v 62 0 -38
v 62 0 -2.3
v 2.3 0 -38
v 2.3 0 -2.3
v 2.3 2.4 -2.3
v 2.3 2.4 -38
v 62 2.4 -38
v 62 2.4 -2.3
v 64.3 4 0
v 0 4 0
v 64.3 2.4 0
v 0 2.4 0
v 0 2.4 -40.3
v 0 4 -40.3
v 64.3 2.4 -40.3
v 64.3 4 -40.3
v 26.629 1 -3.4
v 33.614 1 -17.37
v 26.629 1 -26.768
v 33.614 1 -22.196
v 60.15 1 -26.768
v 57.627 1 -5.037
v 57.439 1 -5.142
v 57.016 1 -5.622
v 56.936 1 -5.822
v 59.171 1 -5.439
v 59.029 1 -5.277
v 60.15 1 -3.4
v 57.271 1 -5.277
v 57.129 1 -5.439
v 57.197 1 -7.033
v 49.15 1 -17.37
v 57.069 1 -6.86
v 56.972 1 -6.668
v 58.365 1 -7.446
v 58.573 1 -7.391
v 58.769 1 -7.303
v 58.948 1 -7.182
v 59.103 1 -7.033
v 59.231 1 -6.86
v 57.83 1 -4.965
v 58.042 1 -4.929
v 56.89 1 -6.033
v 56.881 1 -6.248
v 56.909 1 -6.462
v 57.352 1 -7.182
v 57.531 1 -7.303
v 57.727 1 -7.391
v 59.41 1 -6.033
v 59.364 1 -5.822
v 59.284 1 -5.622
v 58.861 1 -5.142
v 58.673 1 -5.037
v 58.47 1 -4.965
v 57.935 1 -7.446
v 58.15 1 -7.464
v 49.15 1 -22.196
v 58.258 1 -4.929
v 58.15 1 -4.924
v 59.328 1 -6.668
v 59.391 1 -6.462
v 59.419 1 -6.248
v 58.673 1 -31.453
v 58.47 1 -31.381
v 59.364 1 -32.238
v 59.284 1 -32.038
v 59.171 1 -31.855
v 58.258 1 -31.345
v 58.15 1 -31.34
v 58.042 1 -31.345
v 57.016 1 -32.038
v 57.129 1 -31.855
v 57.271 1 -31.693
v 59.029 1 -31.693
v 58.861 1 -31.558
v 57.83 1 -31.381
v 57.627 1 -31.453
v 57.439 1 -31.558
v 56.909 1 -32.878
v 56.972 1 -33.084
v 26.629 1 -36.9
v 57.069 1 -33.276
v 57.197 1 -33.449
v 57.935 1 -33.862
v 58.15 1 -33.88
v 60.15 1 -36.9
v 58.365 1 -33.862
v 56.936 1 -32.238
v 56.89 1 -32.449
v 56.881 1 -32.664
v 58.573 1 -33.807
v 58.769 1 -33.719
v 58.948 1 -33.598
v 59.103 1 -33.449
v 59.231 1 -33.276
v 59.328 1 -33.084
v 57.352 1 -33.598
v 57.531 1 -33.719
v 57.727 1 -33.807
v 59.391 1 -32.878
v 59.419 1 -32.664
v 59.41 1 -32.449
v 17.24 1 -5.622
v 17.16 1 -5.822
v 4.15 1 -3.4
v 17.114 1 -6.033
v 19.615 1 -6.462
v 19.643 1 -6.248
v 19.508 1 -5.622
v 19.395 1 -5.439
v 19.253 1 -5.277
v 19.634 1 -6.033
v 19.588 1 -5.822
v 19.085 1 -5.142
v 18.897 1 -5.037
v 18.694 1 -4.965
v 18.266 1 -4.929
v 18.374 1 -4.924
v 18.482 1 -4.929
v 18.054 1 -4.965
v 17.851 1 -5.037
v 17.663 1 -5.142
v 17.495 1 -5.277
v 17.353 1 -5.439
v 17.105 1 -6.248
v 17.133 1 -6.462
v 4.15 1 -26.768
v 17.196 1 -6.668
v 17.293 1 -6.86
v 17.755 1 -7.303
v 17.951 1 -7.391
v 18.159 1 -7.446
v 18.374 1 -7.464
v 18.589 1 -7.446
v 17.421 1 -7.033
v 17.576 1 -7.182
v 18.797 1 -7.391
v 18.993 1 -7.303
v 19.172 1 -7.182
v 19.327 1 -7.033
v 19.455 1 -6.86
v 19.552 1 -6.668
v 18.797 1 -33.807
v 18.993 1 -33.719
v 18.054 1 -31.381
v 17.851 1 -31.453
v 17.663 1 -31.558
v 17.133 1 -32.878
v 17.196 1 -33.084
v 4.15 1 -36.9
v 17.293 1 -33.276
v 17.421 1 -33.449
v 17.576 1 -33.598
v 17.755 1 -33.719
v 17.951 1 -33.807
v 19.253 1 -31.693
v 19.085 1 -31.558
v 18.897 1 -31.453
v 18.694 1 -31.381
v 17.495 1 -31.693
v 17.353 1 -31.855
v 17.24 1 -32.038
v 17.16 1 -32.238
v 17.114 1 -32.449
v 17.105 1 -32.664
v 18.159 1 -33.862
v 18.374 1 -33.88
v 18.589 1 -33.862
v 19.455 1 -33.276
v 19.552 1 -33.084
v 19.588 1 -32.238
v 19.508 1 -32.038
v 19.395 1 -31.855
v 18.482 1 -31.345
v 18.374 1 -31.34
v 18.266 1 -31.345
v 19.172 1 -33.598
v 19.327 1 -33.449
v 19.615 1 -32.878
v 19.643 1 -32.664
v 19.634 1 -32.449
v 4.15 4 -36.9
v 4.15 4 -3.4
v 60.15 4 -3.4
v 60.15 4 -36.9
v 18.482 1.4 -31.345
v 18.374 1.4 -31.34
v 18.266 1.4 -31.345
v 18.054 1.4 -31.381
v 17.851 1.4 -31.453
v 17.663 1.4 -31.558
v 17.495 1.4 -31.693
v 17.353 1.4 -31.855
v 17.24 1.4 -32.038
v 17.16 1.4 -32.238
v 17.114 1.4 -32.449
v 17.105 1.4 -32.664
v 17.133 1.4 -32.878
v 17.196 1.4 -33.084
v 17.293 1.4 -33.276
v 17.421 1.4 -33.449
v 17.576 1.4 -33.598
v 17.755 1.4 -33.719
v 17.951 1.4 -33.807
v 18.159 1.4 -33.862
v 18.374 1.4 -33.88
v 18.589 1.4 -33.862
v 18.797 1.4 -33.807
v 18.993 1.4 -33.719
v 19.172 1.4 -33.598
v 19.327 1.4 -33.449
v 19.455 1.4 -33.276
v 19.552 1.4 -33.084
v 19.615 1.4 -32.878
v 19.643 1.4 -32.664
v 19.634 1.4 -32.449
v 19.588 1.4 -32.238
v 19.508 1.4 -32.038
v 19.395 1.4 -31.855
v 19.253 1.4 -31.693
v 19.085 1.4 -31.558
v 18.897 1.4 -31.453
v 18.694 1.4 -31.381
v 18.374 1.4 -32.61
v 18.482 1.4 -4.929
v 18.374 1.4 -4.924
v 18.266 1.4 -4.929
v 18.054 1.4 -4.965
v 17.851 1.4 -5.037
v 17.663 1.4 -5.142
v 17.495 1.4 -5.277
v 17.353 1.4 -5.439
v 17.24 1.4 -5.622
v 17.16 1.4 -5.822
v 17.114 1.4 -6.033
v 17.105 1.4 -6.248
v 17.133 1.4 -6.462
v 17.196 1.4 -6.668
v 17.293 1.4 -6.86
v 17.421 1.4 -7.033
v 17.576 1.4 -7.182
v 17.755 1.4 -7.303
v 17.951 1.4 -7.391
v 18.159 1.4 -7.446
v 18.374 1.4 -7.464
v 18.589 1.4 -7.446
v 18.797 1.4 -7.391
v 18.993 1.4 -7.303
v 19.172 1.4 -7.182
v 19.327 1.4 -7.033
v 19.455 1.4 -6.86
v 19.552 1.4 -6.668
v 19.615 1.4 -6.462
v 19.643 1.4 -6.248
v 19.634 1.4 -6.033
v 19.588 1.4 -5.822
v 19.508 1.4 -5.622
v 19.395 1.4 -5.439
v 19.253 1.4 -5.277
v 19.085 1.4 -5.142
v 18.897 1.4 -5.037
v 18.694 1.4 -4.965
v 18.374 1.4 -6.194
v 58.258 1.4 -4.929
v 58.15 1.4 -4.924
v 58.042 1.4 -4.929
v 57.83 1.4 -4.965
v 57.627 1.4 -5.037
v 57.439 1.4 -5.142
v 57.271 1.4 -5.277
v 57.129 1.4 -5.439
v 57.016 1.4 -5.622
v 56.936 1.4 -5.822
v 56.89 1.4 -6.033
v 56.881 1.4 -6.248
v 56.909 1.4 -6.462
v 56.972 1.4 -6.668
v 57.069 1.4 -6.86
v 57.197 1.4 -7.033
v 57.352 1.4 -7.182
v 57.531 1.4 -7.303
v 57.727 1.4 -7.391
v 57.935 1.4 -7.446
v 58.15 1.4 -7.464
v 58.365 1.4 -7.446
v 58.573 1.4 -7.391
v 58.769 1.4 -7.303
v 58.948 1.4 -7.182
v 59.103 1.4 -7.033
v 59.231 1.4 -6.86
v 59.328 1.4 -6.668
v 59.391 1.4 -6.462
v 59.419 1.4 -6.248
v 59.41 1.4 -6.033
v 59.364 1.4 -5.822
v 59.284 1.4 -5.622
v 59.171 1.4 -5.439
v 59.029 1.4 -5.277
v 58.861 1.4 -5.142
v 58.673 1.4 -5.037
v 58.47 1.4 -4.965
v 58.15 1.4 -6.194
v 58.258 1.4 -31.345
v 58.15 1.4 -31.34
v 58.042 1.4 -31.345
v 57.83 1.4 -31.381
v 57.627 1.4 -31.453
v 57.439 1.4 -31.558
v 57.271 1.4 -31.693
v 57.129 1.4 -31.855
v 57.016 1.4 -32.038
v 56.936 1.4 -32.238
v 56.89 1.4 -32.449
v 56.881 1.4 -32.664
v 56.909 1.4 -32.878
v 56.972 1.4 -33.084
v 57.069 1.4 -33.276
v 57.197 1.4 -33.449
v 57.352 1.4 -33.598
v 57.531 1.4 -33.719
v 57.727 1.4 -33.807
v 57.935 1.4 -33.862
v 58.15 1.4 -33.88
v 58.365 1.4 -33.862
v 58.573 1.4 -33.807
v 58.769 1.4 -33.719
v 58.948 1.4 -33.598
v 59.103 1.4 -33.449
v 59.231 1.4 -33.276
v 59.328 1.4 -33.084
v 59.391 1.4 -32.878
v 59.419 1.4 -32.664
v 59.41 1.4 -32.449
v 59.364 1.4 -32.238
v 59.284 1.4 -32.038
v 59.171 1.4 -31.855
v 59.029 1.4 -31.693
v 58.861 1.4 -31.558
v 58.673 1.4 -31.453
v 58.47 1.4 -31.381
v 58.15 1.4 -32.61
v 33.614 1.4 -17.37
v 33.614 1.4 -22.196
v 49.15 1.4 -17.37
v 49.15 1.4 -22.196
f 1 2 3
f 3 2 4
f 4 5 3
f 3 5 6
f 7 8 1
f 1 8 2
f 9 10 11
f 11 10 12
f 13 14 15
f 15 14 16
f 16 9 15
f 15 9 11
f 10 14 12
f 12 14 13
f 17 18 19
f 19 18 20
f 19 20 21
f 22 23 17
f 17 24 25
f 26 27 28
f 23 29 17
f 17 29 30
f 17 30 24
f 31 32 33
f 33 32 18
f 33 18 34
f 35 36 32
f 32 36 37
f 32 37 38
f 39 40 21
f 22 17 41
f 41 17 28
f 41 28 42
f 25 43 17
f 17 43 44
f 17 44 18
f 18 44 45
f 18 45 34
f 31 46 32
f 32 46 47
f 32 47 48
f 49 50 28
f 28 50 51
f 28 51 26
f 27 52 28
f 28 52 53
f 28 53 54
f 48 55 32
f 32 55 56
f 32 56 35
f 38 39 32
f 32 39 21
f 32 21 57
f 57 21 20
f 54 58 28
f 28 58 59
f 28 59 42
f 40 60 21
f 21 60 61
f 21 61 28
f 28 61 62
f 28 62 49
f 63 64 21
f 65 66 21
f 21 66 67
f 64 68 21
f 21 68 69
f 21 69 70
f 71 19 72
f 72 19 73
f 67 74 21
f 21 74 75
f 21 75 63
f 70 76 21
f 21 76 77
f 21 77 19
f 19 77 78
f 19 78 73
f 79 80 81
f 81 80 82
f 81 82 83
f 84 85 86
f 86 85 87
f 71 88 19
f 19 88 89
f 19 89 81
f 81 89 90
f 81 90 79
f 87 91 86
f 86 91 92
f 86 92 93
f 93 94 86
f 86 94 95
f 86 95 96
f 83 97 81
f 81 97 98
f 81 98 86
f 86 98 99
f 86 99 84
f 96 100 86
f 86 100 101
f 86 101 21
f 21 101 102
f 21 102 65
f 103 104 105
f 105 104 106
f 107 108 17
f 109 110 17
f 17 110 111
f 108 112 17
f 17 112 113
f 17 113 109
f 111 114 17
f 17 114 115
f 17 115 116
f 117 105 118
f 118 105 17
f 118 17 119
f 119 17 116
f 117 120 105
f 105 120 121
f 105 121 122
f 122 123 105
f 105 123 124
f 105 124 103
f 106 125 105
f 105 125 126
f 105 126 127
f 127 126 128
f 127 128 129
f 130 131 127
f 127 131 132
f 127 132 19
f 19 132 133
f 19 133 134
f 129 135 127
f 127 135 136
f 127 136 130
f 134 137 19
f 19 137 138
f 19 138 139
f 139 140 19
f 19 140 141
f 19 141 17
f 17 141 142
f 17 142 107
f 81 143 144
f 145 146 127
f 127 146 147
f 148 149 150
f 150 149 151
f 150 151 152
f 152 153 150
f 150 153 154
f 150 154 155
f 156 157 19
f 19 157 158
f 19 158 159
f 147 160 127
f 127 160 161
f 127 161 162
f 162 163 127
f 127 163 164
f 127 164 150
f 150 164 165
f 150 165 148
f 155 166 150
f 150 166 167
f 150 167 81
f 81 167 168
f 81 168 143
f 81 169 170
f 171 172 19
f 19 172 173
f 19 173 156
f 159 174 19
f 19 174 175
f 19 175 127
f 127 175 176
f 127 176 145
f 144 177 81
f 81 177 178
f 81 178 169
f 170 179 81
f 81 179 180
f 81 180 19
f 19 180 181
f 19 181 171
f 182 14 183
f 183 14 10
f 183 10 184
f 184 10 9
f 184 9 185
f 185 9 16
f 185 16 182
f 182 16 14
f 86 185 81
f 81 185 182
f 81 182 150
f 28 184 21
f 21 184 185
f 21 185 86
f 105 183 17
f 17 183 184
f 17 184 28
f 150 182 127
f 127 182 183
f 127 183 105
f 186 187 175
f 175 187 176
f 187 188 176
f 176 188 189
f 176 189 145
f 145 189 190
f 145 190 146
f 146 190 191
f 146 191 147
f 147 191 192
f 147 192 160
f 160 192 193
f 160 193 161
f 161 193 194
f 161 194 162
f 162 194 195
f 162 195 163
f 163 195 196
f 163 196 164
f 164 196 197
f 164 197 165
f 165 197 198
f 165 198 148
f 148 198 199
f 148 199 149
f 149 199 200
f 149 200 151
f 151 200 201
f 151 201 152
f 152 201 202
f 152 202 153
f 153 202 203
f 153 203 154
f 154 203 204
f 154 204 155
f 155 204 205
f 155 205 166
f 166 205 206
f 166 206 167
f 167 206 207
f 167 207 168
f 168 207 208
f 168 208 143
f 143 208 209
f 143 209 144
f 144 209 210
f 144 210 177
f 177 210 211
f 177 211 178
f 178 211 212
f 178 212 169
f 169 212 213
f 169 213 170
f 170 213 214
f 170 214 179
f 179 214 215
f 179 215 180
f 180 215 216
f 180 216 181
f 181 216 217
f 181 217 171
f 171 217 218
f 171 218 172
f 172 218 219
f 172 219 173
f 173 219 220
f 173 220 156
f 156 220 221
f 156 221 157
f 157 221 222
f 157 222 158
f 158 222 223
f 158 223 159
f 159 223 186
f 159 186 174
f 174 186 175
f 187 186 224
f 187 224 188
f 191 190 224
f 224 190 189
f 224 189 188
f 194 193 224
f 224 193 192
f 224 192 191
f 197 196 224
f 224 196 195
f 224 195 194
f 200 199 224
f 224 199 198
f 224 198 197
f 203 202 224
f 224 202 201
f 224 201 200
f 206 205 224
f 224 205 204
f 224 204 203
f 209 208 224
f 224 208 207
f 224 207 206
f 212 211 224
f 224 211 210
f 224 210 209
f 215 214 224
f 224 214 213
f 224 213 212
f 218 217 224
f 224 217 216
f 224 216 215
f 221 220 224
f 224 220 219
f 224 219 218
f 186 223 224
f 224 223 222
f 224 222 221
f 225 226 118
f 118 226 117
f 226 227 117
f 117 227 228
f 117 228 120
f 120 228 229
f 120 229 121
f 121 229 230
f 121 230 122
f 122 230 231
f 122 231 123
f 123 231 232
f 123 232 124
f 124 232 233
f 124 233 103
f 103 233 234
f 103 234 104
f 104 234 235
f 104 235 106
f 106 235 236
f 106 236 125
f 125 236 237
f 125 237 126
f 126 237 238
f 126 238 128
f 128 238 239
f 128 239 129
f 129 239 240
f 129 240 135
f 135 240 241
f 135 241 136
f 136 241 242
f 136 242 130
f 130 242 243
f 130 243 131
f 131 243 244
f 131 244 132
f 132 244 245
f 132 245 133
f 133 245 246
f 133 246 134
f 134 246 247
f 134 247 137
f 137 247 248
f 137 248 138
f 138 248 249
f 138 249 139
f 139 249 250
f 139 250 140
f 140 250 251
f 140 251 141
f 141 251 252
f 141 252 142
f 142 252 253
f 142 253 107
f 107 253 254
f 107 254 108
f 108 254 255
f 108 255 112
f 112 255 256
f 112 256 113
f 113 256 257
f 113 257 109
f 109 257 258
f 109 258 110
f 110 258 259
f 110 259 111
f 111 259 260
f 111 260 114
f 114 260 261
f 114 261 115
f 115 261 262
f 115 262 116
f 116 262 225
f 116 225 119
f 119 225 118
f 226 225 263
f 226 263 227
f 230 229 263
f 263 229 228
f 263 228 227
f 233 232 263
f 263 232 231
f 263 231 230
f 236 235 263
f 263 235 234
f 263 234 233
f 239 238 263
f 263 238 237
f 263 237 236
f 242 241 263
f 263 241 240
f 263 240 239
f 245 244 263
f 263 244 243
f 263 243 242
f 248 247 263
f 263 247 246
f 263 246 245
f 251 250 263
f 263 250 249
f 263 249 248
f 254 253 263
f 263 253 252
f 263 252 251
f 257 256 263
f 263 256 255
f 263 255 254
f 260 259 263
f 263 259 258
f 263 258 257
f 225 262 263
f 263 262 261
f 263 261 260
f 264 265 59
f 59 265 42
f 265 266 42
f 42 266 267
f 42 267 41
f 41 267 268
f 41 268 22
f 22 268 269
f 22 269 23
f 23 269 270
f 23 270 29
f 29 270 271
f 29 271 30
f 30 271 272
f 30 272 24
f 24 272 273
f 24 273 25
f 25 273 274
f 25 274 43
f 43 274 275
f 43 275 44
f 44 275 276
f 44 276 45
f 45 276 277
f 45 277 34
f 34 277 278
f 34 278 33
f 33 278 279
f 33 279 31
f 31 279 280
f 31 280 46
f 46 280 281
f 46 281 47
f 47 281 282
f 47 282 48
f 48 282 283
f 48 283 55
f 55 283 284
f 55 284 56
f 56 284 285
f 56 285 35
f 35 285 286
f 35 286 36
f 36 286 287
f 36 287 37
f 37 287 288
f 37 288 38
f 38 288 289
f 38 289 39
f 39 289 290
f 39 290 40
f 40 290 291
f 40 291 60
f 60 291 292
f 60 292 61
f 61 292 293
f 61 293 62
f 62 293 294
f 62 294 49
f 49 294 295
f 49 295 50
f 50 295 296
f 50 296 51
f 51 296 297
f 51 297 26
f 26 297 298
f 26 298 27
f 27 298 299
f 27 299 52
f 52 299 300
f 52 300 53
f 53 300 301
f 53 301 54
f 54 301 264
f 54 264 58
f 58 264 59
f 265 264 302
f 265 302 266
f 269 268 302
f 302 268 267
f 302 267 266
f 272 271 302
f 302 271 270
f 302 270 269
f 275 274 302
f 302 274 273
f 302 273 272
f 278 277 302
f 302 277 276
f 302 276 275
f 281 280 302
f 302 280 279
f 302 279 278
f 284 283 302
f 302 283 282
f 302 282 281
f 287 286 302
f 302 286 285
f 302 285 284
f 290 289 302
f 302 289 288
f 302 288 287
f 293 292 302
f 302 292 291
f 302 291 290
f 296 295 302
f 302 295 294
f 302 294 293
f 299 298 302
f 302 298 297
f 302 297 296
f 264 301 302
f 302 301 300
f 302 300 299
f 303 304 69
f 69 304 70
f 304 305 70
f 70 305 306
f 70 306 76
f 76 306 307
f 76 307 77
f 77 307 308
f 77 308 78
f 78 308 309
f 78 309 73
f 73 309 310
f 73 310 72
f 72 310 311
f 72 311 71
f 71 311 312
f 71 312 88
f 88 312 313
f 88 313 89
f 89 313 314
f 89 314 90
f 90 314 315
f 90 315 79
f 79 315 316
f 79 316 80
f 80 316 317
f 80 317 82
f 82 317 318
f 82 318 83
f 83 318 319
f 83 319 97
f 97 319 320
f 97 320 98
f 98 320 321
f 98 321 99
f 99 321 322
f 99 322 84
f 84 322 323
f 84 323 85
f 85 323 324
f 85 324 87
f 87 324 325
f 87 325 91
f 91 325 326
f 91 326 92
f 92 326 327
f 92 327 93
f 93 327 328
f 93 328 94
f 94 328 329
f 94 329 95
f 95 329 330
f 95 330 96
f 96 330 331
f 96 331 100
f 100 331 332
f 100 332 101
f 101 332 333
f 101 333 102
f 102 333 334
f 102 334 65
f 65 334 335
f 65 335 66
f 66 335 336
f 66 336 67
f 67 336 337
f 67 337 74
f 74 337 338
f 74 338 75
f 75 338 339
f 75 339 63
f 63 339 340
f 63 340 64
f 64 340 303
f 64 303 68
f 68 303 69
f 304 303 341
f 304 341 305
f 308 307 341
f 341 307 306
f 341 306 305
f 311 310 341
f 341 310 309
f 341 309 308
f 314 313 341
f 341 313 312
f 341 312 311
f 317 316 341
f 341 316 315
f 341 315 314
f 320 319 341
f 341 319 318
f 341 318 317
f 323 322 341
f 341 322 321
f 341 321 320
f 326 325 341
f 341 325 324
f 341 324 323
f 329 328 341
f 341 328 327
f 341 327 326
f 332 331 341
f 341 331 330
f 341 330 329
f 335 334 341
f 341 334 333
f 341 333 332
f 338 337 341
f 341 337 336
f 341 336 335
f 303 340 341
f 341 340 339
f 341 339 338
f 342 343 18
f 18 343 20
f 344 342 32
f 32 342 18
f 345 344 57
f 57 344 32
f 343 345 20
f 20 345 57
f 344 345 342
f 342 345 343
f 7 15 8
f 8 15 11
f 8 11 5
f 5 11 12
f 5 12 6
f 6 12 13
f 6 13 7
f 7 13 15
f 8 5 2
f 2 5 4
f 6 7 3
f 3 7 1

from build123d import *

# Parameters (mm, degrees)
SKETCH1_W              = 64.3
SKETCH1_H              = 40.3
BOSS_EXTRUDE1_DEPTH    = 4
SKETCH2_W              = 56
SKETCH2_H              = 33.5
MAIN_WELL_CUTOUT_DEPTH = 3
SKETCH8_R              = 1.27
SKETCH8_W              = 15.536
SKETCH8_H              = 4.826
ADHESIVE_CONTACT_DEPTH = 0.4
SKETCH5_W              = 59.7
SKETCH5_H              = 2.4
CUT_EXTRUDE2_DEPTH     = 2.3
SKETCH5_3_W            = 2.3
SKETCH5_3_H            = 2.4
CUT_EXTRUDE3_DEPTH     = 76.99065732


with BuildPart() as part:
    # Sketch1 → Boss-Extrude1 (new body)
    with BuildSketch(Plane(origin=(0, 0, 0), x_dir=(1, 0, 0), z_dir=(0, 1, 0))):
        with Locations((32.15, 20.15)):
            Rectangle(SKETCH1_W, SKETCH1_H)
    extrude(amount=BOSS_EXTRUDE1_DEPTH)

    # Sketch2 → main well cutout (cut)
    with BuildSketch(Plane(origin=(0, 4, 0), x_dir=(1, 0, 0), z_dir=(0, 1, 0))):
        with Locations((32.15, 20.15)):
            Rectangle(SKETCH2_W, SKETCH2_H)
    extrude(amount=-MAIN_WELL_CUTOUT_DEPTH, mode=Mode.SUBTRACT)

    # Sketch8 → Adhesive contact (add)
    with BuildSketch(Plane(origin=(0, 1, 0), x_dir=(1, 0, 0), z_dir=(0, 1, 0))):
        with Locations((18.374, 32.61)):
            Circle(SKETCH8_R)
        with Locations((18.374, 6.194)):
            Circle(SKETCH8_R)
        with Locations((58.15, 6.194)):
            Circle(SKETCH8_R)
        with Locations((58.15, 32.61)):
            Circle(SKETCH8_R)
        with Locations((41.382, 19.783)):
            Rectangle(SKETCH8_W, SKETCH8_H)
    extrude(amount=ADHESIVE_CONTACT_DEPTH)

    # Sketch5 → Cut-Extrude2 (cut)
    with BuildSketch(Plane.XY):
        with Locations((32.15, 1.2)):
            Rectangle(SKETCH5_W, SKETCH5_H)
    cut_extrude2 = extrude(amount=-CUT_EXTRUDE2_DEPTH, mode=Mode.SUBTRACT)

    # Sketch5<3> → Cut-Extrude3 (cut, through all)
    with BuildSketch(Plane.XY):
        with Locations((1.15, 1.2)):
            Rectangle(SKETCH5_3_W, SKETCH5_3_H)
        with Locations((63.15, 1.2)):
            Rectangle(SKETCH5_3_W, SKETCH5_3_H)
    extrude(amount=-CUT_EXTRUDE3_DEPTH, mode=Mode.SUBTRACT)

    # cuttout mirror: Cut-Extrude2 across plane
    add(cut_extrude2.mirror(Plane.XY.offset(-20.15)), mode=Mode.SUBTRACT)


solid = part.part
